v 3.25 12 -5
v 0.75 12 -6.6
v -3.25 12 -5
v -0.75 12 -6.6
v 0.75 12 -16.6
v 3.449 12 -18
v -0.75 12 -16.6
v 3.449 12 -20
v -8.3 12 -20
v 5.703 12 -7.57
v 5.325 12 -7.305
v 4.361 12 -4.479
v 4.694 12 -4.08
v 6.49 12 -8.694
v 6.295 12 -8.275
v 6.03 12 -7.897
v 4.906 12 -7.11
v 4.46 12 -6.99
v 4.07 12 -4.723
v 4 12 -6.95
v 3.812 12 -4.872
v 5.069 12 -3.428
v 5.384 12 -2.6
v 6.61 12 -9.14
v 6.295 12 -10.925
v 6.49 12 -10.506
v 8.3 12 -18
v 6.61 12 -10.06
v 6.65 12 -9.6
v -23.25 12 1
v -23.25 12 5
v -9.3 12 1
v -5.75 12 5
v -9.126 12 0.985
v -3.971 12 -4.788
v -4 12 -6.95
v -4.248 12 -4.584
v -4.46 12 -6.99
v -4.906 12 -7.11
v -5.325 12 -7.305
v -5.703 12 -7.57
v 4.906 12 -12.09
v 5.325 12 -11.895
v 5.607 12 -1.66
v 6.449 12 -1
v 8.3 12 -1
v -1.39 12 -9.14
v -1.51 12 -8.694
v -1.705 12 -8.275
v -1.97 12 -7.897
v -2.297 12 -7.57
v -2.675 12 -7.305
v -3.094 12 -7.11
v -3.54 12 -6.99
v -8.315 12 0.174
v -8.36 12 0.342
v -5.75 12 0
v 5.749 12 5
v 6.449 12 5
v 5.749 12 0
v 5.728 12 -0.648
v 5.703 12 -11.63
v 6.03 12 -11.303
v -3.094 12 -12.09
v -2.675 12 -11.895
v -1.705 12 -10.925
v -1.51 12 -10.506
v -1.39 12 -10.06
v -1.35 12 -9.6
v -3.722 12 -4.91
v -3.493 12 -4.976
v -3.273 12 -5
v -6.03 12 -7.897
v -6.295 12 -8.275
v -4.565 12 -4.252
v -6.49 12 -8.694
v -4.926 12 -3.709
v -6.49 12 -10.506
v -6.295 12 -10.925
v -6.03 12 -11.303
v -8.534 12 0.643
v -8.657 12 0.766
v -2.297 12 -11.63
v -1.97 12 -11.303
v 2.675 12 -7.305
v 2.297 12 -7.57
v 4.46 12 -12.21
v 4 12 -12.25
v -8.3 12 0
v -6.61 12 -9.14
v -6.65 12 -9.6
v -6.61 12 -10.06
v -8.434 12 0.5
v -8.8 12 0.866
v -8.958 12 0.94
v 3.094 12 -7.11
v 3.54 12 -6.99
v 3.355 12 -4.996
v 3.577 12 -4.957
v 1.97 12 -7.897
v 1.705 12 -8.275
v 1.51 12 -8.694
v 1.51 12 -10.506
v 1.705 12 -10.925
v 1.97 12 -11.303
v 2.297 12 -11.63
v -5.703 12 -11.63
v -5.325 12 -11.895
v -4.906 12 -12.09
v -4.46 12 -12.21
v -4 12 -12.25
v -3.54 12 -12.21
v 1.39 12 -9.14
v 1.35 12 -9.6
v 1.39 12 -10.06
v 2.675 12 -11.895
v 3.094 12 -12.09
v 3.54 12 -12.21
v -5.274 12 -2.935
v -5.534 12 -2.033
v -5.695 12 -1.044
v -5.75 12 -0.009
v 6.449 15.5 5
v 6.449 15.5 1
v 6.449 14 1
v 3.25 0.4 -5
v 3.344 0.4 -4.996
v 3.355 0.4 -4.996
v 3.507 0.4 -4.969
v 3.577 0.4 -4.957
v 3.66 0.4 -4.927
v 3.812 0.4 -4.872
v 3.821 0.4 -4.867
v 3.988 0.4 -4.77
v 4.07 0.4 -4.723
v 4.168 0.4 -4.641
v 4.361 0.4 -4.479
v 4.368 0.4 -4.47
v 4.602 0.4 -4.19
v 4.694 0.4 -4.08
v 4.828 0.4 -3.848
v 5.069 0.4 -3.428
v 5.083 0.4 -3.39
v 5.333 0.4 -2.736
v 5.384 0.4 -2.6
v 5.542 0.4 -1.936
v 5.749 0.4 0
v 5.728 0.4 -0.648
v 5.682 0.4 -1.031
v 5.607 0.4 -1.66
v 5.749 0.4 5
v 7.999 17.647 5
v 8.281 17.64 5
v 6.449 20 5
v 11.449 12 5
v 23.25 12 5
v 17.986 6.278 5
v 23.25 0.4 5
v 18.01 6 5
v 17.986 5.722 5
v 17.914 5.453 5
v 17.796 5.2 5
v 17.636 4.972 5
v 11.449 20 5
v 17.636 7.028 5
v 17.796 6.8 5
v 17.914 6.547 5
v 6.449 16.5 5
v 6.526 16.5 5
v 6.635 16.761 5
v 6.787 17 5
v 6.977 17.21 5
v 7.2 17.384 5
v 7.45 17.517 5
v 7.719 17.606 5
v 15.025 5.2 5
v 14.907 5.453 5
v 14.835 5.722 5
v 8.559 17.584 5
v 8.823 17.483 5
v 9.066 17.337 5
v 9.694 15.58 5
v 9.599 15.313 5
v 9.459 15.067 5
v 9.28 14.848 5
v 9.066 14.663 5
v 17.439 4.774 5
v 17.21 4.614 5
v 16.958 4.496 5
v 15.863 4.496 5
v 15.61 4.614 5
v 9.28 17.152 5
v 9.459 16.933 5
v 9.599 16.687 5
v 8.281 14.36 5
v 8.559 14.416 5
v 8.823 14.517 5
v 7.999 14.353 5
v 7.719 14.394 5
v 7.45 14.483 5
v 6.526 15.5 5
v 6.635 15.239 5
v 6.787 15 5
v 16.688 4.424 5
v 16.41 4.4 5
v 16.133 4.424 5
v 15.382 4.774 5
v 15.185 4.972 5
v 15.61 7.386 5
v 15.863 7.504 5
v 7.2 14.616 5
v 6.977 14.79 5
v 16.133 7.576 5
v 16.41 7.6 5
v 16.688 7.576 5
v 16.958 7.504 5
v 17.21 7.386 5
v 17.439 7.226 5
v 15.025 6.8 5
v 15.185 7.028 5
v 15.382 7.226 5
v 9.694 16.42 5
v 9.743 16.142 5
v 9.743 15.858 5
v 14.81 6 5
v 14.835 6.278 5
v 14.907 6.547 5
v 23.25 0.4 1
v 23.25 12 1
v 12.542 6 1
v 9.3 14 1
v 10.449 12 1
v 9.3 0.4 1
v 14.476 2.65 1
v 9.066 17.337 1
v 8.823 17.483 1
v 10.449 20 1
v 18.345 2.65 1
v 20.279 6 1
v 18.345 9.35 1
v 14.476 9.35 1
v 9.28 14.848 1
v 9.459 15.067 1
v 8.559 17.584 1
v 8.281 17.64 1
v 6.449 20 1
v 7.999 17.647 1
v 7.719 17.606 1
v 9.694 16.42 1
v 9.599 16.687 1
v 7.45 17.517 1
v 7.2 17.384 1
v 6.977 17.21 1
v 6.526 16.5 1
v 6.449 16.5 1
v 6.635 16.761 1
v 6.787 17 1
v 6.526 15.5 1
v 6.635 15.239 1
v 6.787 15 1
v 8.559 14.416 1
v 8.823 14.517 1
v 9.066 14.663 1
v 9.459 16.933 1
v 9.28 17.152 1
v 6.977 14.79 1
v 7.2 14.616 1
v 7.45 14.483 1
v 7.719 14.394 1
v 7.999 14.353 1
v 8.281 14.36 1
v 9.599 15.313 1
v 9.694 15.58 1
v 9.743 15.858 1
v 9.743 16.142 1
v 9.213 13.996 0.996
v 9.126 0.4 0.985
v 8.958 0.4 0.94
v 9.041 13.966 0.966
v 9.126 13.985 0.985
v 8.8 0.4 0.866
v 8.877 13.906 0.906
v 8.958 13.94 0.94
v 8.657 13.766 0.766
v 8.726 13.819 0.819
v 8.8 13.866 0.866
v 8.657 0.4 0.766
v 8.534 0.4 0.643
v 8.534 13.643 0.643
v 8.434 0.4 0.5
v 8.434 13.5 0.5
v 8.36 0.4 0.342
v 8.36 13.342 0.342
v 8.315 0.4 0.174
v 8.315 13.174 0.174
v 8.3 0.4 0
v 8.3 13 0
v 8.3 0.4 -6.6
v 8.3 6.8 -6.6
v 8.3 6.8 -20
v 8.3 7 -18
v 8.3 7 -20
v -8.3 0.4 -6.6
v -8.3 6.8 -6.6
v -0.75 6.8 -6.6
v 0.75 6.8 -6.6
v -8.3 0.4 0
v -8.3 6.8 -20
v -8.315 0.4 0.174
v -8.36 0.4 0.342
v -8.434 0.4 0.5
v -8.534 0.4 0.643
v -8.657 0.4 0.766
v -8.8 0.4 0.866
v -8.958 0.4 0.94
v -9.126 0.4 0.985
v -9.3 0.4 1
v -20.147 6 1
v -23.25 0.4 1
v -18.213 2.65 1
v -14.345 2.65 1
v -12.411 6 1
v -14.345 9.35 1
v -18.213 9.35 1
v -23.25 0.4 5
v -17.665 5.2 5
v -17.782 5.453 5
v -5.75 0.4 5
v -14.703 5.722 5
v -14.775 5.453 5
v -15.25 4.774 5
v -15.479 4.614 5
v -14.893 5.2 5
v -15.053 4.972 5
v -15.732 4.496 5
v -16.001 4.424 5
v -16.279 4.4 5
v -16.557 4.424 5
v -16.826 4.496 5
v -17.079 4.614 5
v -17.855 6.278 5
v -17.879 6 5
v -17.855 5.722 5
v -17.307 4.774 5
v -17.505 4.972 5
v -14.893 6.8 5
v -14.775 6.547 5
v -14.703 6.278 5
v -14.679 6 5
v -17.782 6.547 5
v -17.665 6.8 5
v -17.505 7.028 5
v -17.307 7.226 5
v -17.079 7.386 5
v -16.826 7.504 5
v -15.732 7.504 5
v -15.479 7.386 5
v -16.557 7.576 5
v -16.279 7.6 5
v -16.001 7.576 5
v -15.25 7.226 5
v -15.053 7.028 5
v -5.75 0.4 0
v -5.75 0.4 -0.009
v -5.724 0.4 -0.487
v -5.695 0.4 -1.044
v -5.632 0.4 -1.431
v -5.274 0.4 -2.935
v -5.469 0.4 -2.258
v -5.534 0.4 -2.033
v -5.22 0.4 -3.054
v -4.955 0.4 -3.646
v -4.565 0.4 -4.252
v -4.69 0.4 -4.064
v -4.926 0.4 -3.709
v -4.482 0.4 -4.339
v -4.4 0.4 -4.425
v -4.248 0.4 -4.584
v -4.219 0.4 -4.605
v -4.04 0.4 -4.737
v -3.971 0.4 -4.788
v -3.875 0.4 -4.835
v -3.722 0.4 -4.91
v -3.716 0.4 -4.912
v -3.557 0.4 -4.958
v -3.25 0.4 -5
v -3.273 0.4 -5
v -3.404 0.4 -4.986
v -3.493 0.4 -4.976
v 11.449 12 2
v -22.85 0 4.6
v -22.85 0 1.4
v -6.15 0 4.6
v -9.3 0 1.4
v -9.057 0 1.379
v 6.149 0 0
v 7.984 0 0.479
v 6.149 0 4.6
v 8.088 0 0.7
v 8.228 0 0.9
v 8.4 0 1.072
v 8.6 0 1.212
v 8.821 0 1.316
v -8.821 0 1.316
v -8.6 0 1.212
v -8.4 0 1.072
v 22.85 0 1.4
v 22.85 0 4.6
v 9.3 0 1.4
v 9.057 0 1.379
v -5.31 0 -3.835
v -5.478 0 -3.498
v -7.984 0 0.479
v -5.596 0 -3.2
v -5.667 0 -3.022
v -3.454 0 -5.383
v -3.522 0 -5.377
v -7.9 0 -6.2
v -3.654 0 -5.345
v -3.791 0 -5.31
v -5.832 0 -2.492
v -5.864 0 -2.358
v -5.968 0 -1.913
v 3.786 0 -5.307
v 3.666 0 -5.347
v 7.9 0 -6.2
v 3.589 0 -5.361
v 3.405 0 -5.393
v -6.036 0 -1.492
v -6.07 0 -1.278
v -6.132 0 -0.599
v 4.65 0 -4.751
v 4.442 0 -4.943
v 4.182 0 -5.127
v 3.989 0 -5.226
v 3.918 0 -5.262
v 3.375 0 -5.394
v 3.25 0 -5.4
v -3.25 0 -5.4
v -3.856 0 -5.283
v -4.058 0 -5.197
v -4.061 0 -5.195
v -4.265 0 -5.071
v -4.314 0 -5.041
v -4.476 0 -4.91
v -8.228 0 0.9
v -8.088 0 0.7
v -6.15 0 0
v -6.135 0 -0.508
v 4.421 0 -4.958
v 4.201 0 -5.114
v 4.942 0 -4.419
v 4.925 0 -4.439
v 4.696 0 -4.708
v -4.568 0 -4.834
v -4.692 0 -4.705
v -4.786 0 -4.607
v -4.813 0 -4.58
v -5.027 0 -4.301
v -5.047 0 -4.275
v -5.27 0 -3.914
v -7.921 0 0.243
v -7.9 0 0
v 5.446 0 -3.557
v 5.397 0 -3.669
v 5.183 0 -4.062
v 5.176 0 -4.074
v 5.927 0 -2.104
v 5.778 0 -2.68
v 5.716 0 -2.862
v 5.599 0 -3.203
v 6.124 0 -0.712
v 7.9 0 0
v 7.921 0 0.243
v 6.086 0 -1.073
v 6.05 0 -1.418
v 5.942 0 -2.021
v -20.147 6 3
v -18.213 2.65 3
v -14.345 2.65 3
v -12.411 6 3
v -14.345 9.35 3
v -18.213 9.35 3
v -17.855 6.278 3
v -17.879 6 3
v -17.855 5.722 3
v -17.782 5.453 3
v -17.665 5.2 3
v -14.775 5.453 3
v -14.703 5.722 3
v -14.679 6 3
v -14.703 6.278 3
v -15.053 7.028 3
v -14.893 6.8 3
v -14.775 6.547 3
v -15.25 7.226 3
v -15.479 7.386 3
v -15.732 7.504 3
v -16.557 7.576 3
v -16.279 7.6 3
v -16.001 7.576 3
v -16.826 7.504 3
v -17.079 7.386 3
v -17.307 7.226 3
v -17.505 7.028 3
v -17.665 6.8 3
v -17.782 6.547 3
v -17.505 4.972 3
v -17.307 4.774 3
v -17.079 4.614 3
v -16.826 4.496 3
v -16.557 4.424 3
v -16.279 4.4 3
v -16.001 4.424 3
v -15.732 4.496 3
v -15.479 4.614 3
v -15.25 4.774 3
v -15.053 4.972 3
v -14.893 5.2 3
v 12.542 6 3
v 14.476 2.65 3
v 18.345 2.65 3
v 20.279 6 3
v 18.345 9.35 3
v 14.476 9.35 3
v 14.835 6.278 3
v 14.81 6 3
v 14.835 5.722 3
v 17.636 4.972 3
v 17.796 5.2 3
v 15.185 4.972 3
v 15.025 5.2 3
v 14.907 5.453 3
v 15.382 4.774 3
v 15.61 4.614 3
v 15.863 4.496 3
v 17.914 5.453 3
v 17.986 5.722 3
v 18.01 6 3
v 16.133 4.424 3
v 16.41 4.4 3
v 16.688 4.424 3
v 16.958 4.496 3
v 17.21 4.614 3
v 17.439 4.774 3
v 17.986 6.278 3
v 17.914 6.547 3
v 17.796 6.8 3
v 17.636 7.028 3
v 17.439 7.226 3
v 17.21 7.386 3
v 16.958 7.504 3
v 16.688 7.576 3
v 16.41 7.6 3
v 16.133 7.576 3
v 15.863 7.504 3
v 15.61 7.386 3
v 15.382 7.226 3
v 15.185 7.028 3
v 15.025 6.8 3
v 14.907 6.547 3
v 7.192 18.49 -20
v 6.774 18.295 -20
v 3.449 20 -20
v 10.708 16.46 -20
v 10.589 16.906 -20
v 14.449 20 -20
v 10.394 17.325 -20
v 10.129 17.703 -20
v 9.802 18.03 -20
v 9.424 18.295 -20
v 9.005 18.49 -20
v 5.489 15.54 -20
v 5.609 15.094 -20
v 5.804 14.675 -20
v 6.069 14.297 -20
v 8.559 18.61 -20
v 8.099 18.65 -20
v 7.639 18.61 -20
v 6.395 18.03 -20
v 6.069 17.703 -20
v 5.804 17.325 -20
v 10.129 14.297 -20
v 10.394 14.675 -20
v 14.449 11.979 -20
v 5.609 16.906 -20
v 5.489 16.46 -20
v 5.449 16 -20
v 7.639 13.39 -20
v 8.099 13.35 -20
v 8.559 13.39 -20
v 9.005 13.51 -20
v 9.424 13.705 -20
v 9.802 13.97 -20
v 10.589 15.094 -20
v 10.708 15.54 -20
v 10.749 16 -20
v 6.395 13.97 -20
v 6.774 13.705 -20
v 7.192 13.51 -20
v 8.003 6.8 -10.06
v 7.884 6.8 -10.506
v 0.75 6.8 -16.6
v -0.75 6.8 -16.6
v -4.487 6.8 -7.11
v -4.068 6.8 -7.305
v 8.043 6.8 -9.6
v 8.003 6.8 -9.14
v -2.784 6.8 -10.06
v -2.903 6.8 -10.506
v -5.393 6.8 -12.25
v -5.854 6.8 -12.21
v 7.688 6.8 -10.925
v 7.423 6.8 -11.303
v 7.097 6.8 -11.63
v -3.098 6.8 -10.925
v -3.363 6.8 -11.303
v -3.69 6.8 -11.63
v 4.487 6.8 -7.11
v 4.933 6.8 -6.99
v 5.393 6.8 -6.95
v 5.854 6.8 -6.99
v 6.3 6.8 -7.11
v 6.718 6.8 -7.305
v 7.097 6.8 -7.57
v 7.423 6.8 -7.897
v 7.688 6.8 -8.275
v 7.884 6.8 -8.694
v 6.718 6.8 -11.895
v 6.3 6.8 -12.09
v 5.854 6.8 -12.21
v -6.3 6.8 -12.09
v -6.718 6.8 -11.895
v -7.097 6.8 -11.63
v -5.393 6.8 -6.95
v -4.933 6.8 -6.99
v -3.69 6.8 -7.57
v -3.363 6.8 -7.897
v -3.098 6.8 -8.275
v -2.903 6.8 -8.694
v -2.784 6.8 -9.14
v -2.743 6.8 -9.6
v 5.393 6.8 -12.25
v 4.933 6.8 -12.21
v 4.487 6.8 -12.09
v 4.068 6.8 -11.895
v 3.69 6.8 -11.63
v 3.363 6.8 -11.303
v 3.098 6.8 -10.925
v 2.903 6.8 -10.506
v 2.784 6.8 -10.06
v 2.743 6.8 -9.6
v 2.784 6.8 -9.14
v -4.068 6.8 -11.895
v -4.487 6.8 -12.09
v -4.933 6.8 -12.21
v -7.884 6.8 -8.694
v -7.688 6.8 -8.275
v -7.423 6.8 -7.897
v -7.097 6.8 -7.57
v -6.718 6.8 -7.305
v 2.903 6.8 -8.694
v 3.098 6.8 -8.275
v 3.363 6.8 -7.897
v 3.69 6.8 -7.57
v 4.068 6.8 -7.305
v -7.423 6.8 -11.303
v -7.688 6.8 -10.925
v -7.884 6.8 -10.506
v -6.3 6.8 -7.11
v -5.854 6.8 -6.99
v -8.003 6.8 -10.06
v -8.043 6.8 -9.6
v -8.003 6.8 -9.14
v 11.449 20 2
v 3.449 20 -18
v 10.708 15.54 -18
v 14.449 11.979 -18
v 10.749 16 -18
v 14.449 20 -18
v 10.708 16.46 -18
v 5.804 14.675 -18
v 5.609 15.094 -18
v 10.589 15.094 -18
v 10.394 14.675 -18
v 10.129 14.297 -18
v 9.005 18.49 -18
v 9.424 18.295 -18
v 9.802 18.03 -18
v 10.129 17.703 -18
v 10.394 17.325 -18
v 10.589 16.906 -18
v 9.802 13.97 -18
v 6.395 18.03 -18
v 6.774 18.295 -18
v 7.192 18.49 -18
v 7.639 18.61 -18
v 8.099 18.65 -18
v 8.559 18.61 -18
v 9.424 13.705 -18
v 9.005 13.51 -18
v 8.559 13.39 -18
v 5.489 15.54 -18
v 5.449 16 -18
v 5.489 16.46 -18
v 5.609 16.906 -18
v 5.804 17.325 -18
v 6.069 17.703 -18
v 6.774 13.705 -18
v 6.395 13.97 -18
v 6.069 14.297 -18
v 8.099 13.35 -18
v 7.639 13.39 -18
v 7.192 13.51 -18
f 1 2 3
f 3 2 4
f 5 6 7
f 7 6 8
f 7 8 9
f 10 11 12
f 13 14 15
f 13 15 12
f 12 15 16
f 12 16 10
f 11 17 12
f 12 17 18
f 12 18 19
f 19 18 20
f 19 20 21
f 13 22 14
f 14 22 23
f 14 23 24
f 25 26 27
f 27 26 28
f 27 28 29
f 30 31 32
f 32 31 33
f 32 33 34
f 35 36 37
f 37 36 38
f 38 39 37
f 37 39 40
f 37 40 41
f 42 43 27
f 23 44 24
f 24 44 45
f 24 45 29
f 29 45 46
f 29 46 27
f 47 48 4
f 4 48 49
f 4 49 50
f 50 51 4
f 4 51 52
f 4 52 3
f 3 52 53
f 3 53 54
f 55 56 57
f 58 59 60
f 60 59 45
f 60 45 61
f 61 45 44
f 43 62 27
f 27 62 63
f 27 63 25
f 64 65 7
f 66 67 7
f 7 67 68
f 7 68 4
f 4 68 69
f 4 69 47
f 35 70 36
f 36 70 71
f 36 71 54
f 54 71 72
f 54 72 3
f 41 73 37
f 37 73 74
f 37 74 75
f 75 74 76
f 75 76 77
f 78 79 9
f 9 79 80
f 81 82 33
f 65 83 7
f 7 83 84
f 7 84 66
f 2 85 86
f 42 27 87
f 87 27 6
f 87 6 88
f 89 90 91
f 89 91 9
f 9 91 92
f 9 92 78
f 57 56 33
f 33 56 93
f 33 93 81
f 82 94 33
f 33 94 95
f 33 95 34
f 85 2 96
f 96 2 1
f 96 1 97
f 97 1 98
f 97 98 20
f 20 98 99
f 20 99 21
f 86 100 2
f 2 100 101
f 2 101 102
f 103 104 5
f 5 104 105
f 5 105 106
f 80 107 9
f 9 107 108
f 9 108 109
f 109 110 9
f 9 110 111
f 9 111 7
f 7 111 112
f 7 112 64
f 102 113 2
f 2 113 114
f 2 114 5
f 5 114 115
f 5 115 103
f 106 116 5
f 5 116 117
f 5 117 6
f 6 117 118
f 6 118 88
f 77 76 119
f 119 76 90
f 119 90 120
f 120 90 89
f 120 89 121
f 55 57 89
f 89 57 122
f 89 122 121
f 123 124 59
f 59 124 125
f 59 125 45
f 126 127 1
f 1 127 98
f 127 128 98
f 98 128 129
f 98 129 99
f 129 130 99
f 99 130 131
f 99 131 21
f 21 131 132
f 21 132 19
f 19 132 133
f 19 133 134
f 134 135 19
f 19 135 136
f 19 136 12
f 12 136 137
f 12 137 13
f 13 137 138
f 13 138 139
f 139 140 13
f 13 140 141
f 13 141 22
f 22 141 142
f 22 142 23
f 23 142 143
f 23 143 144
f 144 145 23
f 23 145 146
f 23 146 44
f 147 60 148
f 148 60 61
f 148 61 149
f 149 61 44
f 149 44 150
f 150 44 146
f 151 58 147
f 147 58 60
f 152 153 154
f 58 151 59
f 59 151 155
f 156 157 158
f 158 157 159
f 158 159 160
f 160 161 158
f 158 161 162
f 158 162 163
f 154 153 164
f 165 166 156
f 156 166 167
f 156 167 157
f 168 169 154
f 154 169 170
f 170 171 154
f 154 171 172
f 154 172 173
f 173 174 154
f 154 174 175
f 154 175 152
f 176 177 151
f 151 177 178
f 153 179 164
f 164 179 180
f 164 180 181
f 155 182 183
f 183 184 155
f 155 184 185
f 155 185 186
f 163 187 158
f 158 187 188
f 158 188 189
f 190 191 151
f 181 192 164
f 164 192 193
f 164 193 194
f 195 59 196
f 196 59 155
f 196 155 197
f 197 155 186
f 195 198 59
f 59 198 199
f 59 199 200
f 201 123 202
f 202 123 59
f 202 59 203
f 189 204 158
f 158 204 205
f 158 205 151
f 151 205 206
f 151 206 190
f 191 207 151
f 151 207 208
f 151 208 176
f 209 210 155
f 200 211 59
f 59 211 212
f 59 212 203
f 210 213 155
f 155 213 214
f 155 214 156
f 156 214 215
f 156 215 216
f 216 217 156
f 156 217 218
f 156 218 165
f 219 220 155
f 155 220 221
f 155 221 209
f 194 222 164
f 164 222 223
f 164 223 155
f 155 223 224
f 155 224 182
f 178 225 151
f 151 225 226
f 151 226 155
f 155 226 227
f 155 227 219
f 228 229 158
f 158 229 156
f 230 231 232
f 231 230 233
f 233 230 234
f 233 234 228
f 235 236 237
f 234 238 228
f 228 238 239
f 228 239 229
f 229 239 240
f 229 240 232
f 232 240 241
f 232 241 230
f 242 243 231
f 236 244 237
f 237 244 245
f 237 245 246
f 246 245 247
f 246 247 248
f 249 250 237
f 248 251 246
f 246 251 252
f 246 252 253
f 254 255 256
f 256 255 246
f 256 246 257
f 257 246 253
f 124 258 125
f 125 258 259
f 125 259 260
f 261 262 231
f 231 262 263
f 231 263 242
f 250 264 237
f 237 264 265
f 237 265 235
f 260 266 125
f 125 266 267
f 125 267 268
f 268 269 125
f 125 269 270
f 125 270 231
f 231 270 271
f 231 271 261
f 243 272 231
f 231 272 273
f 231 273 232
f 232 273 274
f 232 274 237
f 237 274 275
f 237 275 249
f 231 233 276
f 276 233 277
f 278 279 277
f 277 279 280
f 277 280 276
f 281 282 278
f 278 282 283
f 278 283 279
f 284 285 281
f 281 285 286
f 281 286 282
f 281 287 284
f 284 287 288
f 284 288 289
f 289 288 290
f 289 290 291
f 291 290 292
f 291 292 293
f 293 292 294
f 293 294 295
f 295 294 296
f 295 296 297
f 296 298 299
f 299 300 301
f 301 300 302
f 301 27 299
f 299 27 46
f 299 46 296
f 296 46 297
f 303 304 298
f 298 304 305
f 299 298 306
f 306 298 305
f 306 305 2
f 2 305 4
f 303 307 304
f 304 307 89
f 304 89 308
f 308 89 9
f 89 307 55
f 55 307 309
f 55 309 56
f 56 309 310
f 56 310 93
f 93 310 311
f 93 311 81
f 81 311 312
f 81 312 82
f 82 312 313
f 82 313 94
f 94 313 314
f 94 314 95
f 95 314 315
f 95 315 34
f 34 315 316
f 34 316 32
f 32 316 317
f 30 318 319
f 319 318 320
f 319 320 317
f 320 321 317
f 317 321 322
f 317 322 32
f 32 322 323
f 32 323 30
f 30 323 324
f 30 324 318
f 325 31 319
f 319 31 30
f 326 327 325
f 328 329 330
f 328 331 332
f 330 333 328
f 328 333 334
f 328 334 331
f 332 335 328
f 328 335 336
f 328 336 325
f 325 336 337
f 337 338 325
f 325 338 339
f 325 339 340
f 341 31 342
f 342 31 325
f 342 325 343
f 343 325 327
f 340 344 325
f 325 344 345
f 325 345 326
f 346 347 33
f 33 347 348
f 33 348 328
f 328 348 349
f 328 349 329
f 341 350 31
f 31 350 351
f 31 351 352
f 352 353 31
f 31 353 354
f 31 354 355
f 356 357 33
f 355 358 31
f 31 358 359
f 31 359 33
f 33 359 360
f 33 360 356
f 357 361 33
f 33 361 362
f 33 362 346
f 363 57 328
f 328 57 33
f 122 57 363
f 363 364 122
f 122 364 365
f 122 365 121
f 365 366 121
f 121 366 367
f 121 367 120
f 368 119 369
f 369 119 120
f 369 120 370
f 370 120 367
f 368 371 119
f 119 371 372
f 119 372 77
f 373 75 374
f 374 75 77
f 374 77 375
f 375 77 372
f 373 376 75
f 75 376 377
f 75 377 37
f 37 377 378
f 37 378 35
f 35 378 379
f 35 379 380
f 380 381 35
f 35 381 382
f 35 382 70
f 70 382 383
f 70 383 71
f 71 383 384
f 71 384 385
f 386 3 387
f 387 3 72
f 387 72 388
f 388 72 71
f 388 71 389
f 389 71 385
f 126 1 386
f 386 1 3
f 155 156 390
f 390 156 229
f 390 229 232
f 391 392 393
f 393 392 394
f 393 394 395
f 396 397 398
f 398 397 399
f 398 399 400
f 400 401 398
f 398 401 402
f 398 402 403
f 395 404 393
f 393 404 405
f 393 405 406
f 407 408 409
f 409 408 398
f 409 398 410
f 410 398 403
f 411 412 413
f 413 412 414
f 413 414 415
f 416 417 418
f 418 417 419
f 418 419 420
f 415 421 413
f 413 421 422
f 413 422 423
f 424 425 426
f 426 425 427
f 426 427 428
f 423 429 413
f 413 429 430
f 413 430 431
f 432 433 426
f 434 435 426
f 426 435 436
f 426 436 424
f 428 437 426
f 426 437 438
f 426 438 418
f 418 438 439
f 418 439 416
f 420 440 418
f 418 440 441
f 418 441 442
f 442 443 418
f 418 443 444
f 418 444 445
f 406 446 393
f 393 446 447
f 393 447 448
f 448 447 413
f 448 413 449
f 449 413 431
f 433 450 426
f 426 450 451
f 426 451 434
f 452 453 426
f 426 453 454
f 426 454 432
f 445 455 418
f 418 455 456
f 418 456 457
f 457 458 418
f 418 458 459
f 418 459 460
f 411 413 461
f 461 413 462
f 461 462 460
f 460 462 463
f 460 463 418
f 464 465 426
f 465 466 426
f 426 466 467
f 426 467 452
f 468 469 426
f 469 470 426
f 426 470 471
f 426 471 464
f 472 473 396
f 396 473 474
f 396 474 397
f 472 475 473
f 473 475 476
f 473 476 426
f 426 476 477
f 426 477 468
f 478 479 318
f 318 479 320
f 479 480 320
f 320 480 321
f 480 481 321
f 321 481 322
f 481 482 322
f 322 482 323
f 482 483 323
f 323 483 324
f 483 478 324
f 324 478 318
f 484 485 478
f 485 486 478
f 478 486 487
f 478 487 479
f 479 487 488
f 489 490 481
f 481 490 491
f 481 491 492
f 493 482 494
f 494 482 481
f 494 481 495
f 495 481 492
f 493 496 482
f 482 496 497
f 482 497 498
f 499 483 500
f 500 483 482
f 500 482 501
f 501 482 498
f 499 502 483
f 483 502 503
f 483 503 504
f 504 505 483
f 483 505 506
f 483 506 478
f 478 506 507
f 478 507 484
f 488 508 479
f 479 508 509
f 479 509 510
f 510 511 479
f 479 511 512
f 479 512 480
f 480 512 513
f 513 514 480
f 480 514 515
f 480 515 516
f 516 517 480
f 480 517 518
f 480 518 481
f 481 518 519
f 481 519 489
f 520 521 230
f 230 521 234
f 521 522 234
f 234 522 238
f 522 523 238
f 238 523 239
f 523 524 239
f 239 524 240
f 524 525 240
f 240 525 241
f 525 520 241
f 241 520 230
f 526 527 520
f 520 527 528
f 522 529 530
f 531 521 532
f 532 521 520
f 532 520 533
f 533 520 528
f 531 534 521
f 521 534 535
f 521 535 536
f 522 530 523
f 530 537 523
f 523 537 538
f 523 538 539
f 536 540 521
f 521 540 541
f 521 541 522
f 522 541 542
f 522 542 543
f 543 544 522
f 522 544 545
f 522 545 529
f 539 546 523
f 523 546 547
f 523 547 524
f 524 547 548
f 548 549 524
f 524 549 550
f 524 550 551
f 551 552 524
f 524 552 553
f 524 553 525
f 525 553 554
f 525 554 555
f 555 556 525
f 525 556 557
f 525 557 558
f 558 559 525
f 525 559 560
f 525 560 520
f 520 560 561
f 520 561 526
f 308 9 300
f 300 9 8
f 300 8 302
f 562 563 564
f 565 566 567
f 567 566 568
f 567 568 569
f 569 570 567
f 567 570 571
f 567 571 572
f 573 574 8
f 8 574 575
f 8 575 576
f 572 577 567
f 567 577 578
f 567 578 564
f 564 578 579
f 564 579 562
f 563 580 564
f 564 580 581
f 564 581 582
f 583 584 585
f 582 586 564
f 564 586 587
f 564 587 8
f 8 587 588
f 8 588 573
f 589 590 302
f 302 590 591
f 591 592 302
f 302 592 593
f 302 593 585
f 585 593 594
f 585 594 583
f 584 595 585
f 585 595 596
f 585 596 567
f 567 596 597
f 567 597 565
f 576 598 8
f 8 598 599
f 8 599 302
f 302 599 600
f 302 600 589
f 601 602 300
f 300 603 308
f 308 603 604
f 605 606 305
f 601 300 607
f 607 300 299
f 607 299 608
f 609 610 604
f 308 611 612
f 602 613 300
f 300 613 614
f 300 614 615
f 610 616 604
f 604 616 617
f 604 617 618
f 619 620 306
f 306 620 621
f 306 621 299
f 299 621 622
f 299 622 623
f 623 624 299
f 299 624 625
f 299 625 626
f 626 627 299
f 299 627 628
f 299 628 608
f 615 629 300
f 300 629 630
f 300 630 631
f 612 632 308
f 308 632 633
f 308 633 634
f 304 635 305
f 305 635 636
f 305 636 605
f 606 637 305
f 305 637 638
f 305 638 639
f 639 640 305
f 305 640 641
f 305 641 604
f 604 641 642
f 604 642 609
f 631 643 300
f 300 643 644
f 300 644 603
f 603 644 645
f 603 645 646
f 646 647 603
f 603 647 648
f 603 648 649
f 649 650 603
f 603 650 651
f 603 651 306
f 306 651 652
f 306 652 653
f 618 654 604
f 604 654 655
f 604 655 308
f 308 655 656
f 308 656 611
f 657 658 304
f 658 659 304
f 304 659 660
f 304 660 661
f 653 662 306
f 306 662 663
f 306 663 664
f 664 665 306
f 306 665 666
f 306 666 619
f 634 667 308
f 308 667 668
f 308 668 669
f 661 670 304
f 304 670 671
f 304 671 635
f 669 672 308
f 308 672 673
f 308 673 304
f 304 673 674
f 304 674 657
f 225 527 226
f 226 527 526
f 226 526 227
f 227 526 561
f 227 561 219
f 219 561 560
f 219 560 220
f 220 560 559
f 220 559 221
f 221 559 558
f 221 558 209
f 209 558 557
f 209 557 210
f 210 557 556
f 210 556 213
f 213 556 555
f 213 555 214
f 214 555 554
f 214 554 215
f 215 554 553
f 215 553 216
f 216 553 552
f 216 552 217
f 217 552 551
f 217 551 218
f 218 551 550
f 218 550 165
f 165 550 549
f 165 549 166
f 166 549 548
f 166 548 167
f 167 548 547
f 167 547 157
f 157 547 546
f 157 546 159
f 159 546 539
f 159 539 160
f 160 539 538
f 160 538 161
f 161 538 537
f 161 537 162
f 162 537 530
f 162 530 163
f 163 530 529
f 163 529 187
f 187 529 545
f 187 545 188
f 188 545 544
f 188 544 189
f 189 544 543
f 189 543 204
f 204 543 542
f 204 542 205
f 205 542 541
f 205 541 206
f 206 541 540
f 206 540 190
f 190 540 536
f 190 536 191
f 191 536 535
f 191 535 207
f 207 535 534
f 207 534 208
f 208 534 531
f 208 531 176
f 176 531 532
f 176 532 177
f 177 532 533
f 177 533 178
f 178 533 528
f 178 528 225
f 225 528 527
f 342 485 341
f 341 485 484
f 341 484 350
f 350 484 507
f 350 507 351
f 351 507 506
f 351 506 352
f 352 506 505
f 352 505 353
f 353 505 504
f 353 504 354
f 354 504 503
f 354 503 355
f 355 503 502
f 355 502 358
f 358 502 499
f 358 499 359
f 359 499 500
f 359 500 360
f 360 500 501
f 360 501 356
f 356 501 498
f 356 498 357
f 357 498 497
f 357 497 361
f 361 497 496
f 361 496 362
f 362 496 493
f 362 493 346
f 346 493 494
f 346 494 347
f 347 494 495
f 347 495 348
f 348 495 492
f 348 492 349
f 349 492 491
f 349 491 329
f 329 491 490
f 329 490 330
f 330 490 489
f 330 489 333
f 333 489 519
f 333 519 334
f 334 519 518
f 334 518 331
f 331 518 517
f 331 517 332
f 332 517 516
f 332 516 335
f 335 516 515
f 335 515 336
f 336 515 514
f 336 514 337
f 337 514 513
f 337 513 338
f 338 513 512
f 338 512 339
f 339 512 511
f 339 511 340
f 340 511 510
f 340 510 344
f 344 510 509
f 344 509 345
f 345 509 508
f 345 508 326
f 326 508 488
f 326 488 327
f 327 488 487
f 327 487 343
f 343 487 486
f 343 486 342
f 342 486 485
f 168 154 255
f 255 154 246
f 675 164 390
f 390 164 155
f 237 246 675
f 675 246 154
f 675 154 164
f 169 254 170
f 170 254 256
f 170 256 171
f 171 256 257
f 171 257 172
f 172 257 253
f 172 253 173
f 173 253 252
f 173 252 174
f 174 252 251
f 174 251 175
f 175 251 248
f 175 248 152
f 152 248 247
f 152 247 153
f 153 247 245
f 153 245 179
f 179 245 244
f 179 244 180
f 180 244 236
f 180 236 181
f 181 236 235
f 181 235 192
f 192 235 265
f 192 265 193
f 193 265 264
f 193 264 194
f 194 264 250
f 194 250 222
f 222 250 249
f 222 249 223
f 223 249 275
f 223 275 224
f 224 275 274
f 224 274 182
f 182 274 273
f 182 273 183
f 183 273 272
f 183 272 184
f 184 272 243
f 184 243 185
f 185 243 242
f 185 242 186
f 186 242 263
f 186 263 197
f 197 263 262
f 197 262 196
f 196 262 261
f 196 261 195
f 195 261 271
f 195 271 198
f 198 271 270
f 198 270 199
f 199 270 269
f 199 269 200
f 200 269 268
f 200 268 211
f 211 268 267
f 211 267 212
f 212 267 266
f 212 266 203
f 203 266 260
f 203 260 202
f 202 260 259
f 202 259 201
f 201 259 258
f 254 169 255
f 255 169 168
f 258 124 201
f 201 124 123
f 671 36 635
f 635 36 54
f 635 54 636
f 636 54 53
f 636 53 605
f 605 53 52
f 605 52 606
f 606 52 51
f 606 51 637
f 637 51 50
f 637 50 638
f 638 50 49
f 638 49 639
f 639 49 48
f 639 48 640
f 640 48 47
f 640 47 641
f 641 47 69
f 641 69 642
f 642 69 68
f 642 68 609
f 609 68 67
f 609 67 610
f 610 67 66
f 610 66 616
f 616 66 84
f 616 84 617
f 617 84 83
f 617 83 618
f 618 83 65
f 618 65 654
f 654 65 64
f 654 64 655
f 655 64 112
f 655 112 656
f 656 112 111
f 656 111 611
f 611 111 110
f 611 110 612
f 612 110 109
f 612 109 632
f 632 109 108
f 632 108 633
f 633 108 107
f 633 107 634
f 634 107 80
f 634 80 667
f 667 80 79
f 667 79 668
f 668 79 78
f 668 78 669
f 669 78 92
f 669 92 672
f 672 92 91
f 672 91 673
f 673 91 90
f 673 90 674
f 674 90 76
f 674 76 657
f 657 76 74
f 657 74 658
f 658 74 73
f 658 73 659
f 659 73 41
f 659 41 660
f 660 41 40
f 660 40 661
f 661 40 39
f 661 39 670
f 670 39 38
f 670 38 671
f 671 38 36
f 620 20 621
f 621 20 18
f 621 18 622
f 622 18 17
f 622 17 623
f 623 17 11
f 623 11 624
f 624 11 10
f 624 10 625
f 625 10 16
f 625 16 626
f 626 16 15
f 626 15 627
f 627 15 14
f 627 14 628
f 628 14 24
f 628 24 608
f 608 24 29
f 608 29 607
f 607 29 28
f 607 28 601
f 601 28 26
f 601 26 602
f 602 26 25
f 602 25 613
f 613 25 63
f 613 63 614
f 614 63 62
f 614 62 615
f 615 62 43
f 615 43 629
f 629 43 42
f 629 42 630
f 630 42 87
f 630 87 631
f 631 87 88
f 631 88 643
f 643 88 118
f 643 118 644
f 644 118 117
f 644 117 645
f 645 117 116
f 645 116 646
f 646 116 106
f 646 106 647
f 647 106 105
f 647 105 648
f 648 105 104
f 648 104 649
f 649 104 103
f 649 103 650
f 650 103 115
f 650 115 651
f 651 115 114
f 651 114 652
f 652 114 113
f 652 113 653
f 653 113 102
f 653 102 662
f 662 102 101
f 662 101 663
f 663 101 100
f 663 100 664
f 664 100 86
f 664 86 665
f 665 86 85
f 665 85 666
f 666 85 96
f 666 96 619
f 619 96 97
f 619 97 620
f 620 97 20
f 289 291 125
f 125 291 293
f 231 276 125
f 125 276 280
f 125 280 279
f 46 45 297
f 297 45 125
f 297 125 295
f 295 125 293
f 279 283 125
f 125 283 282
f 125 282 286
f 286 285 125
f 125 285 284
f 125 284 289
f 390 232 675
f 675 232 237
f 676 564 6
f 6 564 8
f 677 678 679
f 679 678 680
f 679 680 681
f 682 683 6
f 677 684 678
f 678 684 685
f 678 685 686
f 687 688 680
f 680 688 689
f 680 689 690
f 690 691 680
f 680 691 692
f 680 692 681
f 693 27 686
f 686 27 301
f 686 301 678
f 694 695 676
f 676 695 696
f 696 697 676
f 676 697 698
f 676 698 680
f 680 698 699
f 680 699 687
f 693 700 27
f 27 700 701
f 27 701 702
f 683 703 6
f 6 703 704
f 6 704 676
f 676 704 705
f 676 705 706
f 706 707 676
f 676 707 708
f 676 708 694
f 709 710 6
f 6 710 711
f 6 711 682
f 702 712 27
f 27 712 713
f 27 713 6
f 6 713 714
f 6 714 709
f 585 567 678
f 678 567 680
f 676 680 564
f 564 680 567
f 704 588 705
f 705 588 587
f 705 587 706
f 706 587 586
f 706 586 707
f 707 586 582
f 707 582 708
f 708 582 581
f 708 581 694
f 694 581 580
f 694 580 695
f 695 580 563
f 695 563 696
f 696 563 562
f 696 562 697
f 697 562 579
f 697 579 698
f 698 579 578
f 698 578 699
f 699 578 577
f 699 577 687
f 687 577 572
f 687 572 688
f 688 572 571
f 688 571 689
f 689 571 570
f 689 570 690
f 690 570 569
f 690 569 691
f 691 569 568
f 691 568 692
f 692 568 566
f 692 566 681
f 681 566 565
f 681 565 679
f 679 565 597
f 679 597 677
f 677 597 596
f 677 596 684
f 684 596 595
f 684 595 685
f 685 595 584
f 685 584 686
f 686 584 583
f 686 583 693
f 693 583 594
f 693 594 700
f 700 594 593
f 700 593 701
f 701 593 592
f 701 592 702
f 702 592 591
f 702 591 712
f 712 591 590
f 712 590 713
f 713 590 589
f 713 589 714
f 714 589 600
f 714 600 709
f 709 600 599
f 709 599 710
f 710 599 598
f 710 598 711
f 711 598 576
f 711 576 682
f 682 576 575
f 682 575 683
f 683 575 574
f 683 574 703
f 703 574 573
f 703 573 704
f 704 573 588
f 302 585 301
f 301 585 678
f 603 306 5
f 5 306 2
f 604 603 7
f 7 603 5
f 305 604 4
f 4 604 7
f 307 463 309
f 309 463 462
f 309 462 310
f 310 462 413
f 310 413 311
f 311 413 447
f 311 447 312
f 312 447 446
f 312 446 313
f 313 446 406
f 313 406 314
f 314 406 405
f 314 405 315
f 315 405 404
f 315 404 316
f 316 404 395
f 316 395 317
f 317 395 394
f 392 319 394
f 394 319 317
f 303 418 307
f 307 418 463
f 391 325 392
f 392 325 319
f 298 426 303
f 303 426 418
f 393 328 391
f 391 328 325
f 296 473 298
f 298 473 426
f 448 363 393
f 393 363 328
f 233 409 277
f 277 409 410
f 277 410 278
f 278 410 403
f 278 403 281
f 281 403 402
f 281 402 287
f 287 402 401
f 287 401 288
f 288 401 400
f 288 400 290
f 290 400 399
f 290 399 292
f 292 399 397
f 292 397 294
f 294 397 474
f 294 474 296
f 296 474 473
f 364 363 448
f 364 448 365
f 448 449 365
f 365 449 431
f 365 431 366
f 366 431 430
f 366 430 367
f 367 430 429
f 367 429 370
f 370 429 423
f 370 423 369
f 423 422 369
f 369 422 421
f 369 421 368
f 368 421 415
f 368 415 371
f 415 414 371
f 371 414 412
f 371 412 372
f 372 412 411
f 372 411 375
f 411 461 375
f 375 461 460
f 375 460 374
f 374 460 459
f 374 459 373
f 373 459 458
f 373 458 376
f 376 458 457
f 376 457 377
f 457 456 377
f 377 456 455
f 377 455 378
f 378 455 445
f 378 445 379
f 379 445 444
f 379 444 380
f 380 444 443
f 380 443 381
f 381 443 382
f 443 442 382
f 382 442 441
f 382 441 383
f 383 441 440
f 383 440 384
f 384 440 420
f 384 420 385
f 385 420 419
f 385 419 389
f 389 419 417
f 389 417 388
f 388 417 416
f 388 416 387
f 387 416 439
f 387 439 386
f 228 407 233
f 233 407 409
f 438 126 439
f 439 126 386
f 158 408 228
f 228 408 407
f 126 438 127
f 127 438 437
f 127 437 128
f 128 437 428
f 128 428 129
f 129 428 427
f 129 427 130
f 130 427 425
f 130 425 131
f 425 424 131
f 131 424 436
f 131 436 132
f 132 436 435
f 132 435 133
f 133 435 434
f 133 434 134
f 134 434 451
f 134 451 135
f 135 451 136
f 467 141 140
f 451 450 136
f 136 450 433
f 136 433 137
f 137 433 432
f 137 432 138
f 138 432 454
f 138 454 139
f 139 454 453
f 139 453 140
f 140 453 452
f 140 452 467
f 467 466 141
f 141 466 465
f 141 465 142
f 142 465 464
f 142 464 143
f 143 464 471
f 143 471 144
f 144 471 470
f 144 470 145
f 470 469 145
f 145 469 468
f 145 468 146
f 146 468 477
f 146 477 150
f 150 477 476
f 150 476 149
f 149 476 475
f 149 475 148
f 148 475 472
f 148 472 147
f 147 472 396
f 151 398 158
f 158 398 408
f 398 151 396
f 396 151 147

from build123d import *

# Parameters (mm, degrees)
BOSS_EXTRUDE1_DEPTH = 12
CUT_EXTRUDE1_DEPTH  = 2
SKETCH3_W           = 16.6
SKETCH3_H           = 13.4
BOSS_EXTRUDE2_DEPTH = 5.2
SKETCH5_R           = 1.6
CUT_EXTRUDE2_DEPTH  = 5
SKETCH6_W           = 5
SKETCH6_H           = 4
BOSS_EXTRUDE4_DEPTH = 8
CUT_EXTRUDE4_DEPTH  = 7
SKETCH8_R           = 2.65
CUT_EXTRUDE5_DEPTH  = 7
SKETCH10_R          = 2.65
CUT_EXTRUDE6_DEPTH  = 7
CHAMFER2_SIZE       = 2
CHAMFER3_SIZE       = 1
SKETCH12_W          = 3
SKETCH12_H          = 2
SKETCH12_W_2        = 6.148694825
SKETCH12_W_3        = 1.851305175
BOSS_EXTRUDE5_DEPTH = 8
SKETCH13_R          = 2.65
CUT_EXTRUDE7_DEPTH  = 3
CHAMFER4_SIZE       = 5
CHAMFER4_SIZE_2     = 6.174485783
SKETCH16_W          = 1.5
SKETCH16_H          = 10
CUT_EXTRUDE8_DEPTH  = 11
CHAMFER5_SIZE       = 0.4


with BuildPart() as part:
    # Sketch1 → Boss-Extrude1 (new body)
    with BuildSketch(Plane(origin=(0, 0, 0), x_dir=(1, 0, 0), z_dir=(0, 1, 0))):
        with BuildLine():
            Line((-23.25, -5), (-5.749755012, -5))
            Line((-5.749755012, -5), (-5.749755012, 0))
            add(Edge.make_bspline(
                [(-3.25, 5), (-5.749755012, 5), (-5.749755012, 0)],
                knots=[0, 0, 0, 1.570796327, 1.570796327, 1.570796327], degree=2, weights=[1, 0.707106781, 1]))
            Line((-3.25, 5), (3.25, 5))
            add(Edge.make_bspline(
                [(5.748694825, 0), (5.748694825, 5), (3.25, 5)],
                knots=[4.71238898, 4.71238898, 4.71238898, 6.283185307, 6.283185307, 6.283185307], degree=2, weights=[1, 0.707106781, 1]))
            Line((5.748694825, 0), (5.748694825, -5))
            Line((5.748694825, -5), (23.25, -5))
            Line((23.25, -5), (23.25, -3))
            Line((23.25, -3), (23.25, -1))
            Line((23.25, -1), (9.3, -1))
            ThreePointArc((9.3, -1), (8.592893219, -0.707106781), (8.3, 0))
            Line((8.3, 0), (8.3, 6.6))
            Line((8.3, 6.6), (-8.3, 6.6))
            Line((-8.3, 6.6), (-8.3, 0))
            ThreePointArc((-8.3, 0), (-8.592893219, -0.707106781), (-9.3, -1))
            Line((-9.3, -1), (-23.25, -1))
            Line((-23.25, -1), (-23.25, -5))
        make_face()
    extrude(amount=BOSS_EXTRUDE1_DEPTH)

    # Sketch2 → Cut-Extrude1 (cut)
    with BuildSketch(Plane(origin=(0, 0, 1), x_dir=(-1, 0, 0), z_dir=(0, 0, -1))):
        Polygon((20.147177825, 6), (18.213054423, 9.35), (14.344807619, 9.35), (12.410684218, 6), (14.344807619, 2.65), (18.213054423, 2.65), align=None)
        Polygon((-12.542169585, 6), (-14.476292987, 9.35), (-18.34453979, 9.35), (-20.278663192, 6), (-18.34453979, 2.65), (-14.476292987, 2.65), align=None)
    extrude(amount=-CUT_EXTRUDE1_DEPTH, mode=Mode.SUBTRACT)

    # Sketch3 → Boss-Extrude2 (add)
    with BuildSketch(Plane(origin=(0, 12, 0), x_dir=(1, 0, 0), z_dir=(0, 1, 0))):
        with Locations((0, 13.3)):
            Rectangle(SKETCH3_W, SKETCH3_H)
    extrude(amount=-BOSS_EXTRUDE2_DEPTH)

    # Sketch5 → Cut-Extrude2 (cut)
    with BuildSketch(Plane(origin=(0, 0, 1), x_dir=(-1, 0, 0), z_dir=(0, 0, -1))):
        with Locations((-16.410416388, 6)):
            Circle(SKETCH5_R)
        with Locations((16.278931021, 6)):
            Circle(SKETCH5_R)
    extrude(amount=-CUT_EXTRUDE2_DEPTH, mode=Mode.SUBTRACT)

    # Sketch6 → Boss-Extrude4 (add)
    with BuildSketch(Plane(origin=(0, 12, 0), x_dir=(1, 0, 0), z_dir=(0, 1, 0))):
        with Locations((8.948694825, -3)):
            Rectangle(SKETCH6_W, SKETCH6_H)
    extrude(amount=BOSS_EXTRUDE4_DEPTH)

    # Sketch7 → Cut-Extrude4 (cut)
    with BuildSketch(Plane(origin=(0, 0, 1), x_dir=(-1, 0, 0), z_dir=(0, 0, -1))):
        with BuildLine():
            ThreePointArc((-6.448694825, 16), (-6.468205549, 16.252991544), (-6.526276305, 16.5))
            Line((-6.526276305, 16.5), (-7.999397269, 16.5))
            Line((-7.999397269, 16.5), (-7.999397269, 15.5))
            Line((-7.999397269, 15.5), (-6.526276305, 15.5))
            ThreePointArc((-6.526276305, 15.5), (-6.468205549, 15.747008456), (-6.448694825, 16))
        make_face()
        with BuildLine():
            Line((-7.999397269, 16.5), (-6.526276305, 16.5))
            ThreePointArc((-6.526276305, 16.5), (-9.748694825, 16), (-6.526276305, 15.5))
            Line((-6.526276305, 15.5), (-7.999397269, 15.5))
            Line((-7.999397269, 15.5), (-7.999397269, 16.5))
        make_face()
        with BuildLine():
            Line((-6.448694825, 15.5), (-6.448694825, 16))
            ThreePointArc((-6.448694825, 16), (-6.468205549, 15.747008456), (-6.526276305, 15.5))
            Line((-6.526276305, 15.5), (-6.448694825, 15.5))
        make_face()
        with BuildLine():
            Line((-6.448694825, 16), (-6.448694825, 16.5))
            Line((-6.448694825, 16.5), (-6.526276305, 16.5))
            ThreePointArc((-6.526276305, 16.5), (-6.468205549, 16.252991544), (-6.448694825, 16))
        make_face()
    extrude(amount=-CUT_EXTRUDE4_DEPTH, mode=Mode.SUBTRACT)

    # Sketch8 → Cut-Extrude5 (cut, along a direction that is not the sketch's normal)
    with BuildSketch(Plane(origin=(0, 12, 0), x_dir=(1, 0, 0), z_dir=(0, 1, 0))):
        with Locations((-4, 9.6)):
            Circle(SKETCH8_R)
    extrude(amount=-CUT_EXTRUDE5_DEPTH, dir=(0.2588190451025147, 0.96592582628907, -1.457918124587514e-13), mode=Mode.SUBTRACT)

    # Sketch10 → Cut-Extrude6 (cut, along a direction that is not the sketch's normal)
    with BuildSketch(Plane(origin=(0, 12, 0), x_dir=(1, 0, 0), z_dir=(0, 1, 0))):
        with Locations((4, 9.6)):
            Circle(SKETCH10_R)
    extrude(amount=-CUT_EXTRUDE6_DEPTH, dir=(-0.25881904510251447, 0.96592582628907, 0), mode=Mode.SUBTRACT)

    # Chamfer2
    chamfer2_edges = [part.edges().sort_by_distance(p)[0] for p in [
        (7.874347412, 12, 1),
    ]]
    chamfer(chamfer2_edges, length=CHAMFER2_SIZE)

    # Chamfer3
    chamfer3_edges = [part.edges().sort_by_distance(p)[0] for p in [
        (11.448694825, 16, 1),
    ]]
    chamfer(chamfer3_edges, length=CHAMFER3_SIZE)

    # Sketch12 → Boss-Extrude5 (add)
    with BuildSketch(Plane(origin=(0, 12, 0), x_dir=(1, 0, 0), z_dir=(0, 1, 0))):
        with Locations((4.948694825, 19)):
            Rectangle(SKETCH12_W, SKETCH12_H)
        with Locations((11.374347413, 19)):
            Rectangle(SKETCH12_W_2, SKETCH12_H)
        with Locations((7.374347413, 19)):
            Rectangle(SKETCH12_W_3, SKETCH12_H)
    extrude(amount=BOSS_EXTRUDE5_DEPTH)

    # Sketch13 → Cut-Extrude7 (cut)
    with BuildSketch(Plane(origin=(0, 0, -20), x_dir=(-1, 0, 0), z_dir=(0, 0, -1))):
        with Locations((-8.098694825, 16)):
            Circle(SKETCH13_R)
    extrude(amount=-CUT_EXTRUDE7_DEPTH, mode=Mode.SUBTRACT)

    # Chamfer4
    # the kernel refuses this chamfer: 6.174485783, 5 mm, written as the material it adds along each edge
    with BuildSketch(Plane(origin=(8.3, 12, -18), x_dir=(-0.037204697112204525, -0.9993076655929289, 0), z_dir=(0, 0, -1))) as chamfer4_piece_1_section:
        Polygon((CHAMFER4_SIZE * 0.999307665593, -CHAMFER4_SIZE * 0.0372046971122), (-CHAMFER4_SIZE_2 * 0.0372046971102, -CHAMFER4_SIZE_2 * 0.99930766554), (0, 0), align=None)
    chamfer4_piece_1 = extrude(amount=2, mode=Mode.PRIVATE)
    chamfer4_piece_1 = split(chamfer4_piece_1, bisect_by=Plane(origin=(14.448694825, 10.333304375, -19), z_dir=(-1, 0, 0)), keep=Keep.TOP, mode=Mode.PRIVATE)
    add(chamfer4_piece_1)

    # Sketch16 → Cut-Extrude8 (cut)
    with BuildSketch(Plane.XZ.offset(-6.8)):
        with Locations((0, -11.6)):
            Rectangle(SKETCH16_W, SKETCH16_H)
    extrude(amount=-CUT_EXTRUDE8_DEPTH, mode=Mode.SUBTRACT)

    # Chamfer5
    chamfer5_edges = [part.edges().sort_by_distance(p)[0] for p in [
        (0, 0, -5),
        (-5.260112096, 0, -2.972310439),
        (-5.749755012, 0, 2.5),
        (-14.499877506, 0, 5),
        (-23.25, 0, 3),
        (-16.275, 0, 1),
        (-8.592893219, 0, 0.707106781),
        (-8.3, 0, -3.3),
        (0, 0, -6.6),
        (8.3, 0, -3.3),
        (8.592893219, 0, 0.707106781),
        (16.275, 0, 1),
        (23.25, 0, 3),
        (14.499347412, 0, 5),
        (5.748694825, 0, 2.5),
        (5.259369228, 0, -2.972013605),
    ]]
    chamfer(chamfer5_edges, length=CHAMFER5_SIZE)


solid = part.part
